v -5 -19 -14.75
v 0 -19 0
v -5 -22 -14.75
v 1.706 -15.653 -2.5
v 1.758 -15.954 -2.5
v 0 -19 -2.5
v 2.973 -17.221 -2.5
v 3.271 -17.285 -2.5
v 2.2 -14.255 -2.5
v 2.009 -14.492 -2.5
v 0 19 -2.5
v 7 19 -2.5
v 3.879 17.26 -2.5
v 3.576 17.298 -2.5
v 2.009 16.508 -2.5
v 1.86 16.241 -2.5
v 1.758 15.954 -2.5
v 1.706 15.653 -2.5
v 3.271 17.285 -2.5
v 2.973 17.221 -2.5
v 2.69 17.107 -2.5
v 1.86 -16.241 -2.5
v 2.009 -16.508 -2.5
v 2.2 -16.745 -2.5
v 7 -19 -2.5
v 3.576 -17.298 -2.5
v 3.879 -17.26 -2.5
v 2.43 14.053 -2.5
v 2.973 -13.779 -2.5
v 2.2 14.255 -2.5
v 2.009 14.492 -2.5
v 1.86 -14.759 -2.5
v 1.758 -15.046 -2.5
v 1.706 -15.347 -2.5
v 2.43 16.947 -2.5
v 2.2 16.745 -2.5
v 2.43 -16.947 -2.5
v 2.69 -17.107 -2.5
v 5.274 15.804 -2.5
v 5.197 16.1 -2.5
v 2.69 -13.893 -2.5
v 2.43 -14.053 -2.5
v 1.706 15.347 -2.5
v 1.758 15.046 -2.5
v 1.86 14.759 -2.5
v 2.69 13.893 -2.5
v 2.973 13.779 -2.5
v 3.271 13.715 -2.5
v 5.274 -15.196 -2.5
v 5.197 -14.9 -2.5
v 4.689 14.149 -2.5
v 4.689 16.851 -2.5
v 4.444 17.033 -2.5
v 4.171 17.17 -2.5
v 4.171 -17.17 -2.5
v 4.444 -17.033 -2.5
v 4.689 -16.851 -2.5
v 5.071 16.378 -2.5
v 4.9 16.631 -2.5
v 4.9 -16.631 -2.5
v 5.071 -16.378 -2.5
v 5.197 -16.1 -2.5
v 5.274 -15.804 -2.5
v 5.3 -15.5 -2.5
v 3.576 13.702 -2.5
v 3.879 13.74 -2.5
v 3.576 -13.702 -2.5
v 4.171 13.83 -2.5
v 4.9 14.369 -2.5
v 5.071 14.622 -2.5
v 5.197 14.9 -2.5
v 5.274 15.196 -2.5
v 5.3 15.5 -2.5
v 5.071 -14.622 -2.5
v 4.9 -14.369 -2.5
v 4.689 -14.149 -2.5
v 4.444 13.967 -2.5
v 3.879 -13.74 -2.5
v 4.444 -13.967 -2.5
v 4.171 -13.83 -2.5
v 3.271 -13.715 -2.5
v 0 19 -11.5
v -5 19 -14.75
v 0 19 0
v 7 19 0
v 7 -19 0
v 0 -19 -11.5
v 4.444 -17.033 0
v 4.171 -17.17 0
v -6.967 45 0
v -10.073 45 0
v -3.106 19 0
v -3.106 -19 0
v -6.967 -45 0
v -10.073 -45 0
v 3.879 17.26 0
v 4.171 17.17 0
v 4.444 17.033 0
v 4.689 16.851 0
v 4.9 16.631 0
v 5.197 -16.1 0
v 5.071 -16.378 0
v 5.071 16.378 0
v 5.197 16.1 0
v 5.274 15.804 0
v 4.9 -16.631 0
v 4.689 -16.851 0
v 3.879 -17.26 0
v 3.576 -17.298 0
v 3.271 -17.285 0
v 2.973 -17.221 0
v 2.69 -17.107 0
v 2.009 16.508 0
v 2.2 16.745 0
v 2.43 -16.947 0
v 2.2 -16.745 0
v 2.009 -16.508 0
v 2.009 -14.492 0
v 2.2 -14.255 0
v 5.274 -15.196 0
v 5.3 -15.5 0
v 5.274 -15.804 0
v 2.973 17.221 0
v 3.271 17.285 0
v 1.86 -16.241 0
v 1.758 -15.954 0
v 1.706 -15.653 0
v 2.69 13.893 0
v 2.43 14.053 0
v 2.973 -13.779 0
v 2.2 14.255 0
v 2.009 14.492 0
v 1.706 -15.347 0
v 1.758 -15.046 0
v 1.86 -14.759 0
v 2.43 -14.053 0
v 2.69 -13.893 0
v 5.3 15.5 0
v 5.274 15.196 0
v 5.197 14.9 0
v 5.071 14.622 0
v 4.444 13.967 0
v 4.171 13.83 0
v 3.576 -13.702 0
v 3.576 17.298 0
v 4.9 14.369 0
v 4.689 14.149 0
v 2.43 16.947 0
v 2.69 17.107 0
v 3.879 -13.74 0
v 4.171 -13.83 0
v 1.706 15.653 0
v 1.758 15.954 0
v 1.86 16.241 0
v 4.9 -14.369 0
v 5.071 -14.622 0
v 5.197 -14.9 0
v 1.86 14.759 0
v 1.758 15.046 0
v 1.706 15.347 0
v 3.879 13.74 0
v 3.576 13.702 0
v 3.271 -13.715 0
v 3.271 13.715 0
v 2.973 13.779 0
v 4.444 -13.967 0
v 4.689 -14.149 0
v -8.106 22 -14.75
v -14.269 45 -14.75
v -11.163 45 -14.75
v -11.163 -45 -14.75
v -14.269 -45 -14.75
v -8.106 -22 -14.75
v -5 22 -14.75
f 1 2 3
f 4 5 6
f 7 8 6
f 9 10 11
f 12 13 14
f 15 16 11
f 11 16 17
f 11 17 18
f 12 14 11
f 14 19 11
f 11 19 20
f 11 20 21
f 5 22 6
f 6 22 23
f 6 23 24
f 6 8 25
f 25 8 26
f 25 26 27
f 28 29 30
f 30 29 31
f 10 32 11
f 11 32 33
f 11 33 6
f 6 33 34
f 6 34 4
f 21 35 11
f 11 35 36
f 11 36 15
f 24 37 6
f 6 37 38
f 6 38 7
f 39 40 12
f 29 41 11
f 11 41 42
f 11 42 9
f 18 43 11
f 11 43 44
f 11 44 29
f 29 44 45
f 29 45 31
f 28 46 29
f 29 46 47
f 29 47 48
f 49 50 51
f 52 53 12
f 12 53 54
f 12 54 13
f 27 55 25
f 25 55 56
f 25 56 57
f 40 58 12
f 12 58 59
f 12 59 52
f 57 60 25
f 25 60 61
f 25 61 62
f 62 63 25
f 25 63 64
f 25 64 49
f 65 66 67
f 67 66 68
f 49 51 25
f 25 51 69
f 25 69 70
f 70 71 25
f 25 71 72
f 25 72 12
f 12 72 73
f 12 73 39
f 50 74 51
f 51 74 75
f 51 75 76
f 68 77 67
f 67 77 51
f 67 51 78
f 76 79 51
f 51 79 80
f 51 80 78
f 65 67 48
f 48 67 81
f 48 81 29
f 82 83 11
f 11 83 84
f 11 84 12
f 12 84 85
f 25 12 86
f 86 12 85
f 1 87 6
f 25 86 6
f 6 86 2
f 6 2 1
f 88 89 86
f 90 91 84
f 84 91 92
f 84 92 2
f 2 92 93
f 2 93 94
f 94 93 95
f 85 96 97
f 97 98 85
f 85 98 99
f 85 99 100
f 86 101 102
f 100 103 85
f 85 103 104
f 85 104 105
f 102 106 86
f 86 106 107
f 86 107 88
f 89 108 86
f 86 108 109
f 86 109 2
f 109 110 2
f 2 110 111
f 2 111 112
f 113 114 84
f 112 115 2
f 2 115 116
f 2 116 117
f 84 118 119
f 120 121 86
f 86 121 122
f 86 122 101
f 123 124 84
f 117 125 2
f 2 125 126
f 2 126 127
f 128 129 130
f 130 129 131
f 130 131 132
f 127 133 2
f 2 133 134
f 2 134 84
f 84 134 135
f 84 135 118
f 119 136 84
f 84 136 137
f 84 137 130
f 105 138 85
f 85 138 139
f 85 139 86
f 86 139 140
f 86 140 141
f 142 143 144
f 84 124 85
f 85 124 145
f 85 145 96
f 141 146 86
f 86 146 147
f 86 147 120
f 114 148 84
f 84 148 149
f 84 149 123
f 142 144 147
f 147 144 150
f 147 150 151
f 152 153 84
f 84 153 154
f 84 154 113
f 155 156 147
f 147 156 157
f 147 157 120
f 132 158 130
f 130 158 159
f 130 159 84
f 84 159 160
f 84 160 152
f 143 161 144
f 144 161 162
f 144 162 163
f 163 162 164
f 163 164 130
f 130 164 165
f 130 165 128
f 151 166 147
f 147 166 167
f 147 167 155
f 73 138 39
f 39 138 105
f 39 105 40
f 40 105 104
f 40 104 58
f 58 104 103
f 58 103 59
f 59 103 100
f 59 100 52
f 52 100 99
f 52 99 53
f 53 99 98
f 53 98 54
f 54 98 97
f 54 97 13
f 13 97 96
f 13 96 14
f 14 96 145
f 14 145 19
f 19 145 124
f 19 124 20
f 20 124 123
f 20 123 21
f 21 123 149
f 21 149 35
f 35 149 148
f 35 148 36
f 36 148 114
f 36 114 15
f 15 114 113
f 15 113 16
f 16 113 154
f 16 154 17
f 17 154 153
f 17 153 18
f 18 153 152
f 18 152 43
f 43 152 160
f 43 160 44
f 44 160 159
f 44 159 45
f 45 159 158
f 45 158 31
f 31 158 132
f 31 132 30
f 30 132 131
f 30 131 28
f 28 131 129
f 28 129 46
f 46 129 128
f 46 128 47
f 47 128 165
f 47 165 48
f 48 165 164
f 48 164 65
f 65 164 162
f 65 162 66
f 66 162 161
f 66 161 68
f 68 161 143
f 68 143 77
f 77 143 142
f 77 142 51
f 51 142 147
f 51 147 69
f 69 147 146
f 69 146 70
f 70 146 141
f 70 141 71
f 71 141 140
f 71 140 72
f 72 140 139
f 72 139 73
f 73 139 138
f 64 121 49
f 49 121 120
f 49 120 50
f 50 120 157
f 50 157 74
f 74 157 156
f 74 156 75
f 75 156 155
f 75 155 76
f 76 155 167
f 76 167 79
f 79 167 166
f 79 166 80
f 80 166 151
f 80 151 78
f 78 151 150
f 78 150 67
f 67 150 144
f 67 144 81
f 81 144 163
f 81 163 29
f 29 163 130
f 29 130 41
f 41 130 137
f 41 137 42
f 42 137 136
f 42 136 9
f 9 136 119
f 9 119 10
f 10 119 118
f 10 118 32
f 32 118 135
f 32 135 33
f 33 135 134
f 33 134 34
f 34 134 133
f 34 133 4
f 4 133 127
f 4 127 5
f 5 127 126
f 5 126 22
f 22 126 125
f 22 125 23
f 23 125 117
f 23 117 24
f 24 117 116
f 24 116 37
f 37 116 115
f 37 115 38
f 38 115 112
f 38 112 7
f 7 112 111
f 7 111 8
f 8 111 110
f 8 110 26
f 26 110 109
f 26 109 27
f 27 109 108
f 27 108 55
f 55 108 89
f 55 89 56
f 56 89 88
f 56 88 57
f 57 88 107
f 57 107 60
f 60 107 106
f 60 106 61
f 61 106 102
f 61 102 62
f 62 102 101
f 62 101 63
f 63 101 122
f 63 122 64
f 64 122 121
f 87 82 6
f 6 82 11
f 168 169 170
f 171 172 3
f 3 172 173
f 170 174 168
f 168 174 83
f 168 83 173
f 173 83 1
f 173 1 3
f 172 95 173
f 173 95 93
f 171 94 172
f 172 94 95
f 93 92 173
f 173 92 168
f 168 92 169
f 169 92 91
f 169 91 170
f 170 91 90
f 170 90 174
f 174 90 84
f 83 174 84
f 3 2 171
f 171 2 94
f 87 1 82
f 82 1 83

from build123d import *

# Parameters (mm, degrees)
ESQUISSE10_W            = 10.105828541
ESQUISSE10_H            = 38
BOSS_EXTRU_1_DEPTH      = 2.5
ESQUISSE13_R            = 1.8
ENL_V_MAT_EXTRU_1_DEPTH = 2.5
BOSS_EXTRU_2_REACH      = 51.459
ESQUISSE16_W            = 9
ESQUISSE16_H            = 38
NERVURE3_REACH          = 51.459
ESQUISSE17_WALL_W       = 106.880712272
ESQUISSE17_WALL_H       = 38


with BuildPart() as part:
    # Esquisse12 → Lissage4 section 0
    with BuildSketch(Plane(origin=(0, 0, 0), x_dir=(-1, 0, 0), z_dir=(0, 0, -1))):
        with BuildLine():
            Line((0, -19), (0, 19))
            Line((0, 19), (6.966679003, 45))
            Line((6.966679003, 45), (10.072507544, 45))
            Line((10.072507544, 45), (3.105828541, 19))
            Line((3.105828541, 19), (3.105828541, -19))
            Line((3.105828541, -19), (10.072507544, -45))
            Line((10.072507544, -45), (6.966679003, -45))
            Line((6.966679003, -45), (0, -19))
        make_face()
    # Esquisse11 → Lissage4 section 1
    with BuildSketch(Plane.XY.offset(-14.75)):
        with BuildLine():
            Line((-11.162831426, 45), (-14.268659967, 45))
            Line((-14.268659967, 45), (-8.105828541, 22))
            Line((-8.105828541, 22), (-8.105828541, -22))
            Line((-8.105828541, -22), (-14.268659967, -45))
            Line((-14.268659967, -45), (-11.162831426, -45))
            Line((-11.162831426, -45), (-5, -22))
            Line((-5, -22), (-5, 22))
            Line((-5, 22), (-11.162831426, 45))
        make_face()
    loft()



with BuildPart() as body_2:
    # Esquisse10 → Boss.-Extru.1 (new body)
    with BuildSketch(Plane.XY):
        with Locations((1.947085729, 0)):
            Rectangle(ESQUISSE10_W, ESQUISSE10_H)
    extrude(amount=-BOSS_EXTRU_1_DEPTH)

    # Esquisse13 → Enlèv. mat.-Extru.1 (cut)
    with BuildSketch(Plane.XY):
        with Locations((3.5, 15.5)):
            Circle(ESQUISSE13_R)
        with Locations((3.5, -15.5)):
            Circle(ESQUISSE13_R)
    extrude(amount=-ENL_V_MAT_EXTRU_1_DEPTH, mode=Mode.SUBTRACT)


with BuildPart() as part_1:
    add(part.part)

    add(body_2.part)  # Boss.-Extru.2 merges body 2
    # Boss.-Extru.2: up to this plane
    boss_extru_2_end = Plane(origin=(0, 0, 0), z_dir=(0.9470658794157988, 0, -0.32103928115789765))
    # Esquisse16 → Boss.-Extru.2 (add, up to the surface)
    with BuildSketch(Plane(origin=(0, 0, 0), x_dir=(0, 0, -1), z_dir=(1, 0, 0)), mode=Mode.PRIVATE) as boss_extru_2_sk1:
        with Locations((7, 0)):
            Rectangle(ESQUISSE16_W, ESQUISSE16_H)
    boss_extru_2_tool1 = split(extrude(boss_extru_2_sk1.sketch, amount=-BOSS_EXTRU_2_REACH, mode=Mode.PRIVATE), bisect_by=boss_extru_2_end, keep=Keep.BOTH, mode=Mode.PRIVATE)
    add(boss_extru_2_tool1.solids().sort_by_distance((0, 0, -7))[0])

    # Esquisse17 wall → Nervure3 (add, up to next)
    with BuildSketch(Plane(origin=(-2.5, 0, -13.125), x_dir=(-0.838443616301, 0, -0.544988350595), z_dir=(-0.544988350595, 0, 0.838443616301)), mode=Mode.PRIVATE) as nervure3_sk1:
        Rectangle(ESQUISSE17_WALL_W, ESQUISSE17_WALL_H)
    nervure3_tool1 = extrude(nervure3_sk1.sketch, amount=NERVURE3_REACH, mode=Mode.PRIVATE) - part_1.part
    add(nervure3_tool1.solids().sort_by_distance((-2.5, 0, -13.125))[0])


solid = part_1.part
